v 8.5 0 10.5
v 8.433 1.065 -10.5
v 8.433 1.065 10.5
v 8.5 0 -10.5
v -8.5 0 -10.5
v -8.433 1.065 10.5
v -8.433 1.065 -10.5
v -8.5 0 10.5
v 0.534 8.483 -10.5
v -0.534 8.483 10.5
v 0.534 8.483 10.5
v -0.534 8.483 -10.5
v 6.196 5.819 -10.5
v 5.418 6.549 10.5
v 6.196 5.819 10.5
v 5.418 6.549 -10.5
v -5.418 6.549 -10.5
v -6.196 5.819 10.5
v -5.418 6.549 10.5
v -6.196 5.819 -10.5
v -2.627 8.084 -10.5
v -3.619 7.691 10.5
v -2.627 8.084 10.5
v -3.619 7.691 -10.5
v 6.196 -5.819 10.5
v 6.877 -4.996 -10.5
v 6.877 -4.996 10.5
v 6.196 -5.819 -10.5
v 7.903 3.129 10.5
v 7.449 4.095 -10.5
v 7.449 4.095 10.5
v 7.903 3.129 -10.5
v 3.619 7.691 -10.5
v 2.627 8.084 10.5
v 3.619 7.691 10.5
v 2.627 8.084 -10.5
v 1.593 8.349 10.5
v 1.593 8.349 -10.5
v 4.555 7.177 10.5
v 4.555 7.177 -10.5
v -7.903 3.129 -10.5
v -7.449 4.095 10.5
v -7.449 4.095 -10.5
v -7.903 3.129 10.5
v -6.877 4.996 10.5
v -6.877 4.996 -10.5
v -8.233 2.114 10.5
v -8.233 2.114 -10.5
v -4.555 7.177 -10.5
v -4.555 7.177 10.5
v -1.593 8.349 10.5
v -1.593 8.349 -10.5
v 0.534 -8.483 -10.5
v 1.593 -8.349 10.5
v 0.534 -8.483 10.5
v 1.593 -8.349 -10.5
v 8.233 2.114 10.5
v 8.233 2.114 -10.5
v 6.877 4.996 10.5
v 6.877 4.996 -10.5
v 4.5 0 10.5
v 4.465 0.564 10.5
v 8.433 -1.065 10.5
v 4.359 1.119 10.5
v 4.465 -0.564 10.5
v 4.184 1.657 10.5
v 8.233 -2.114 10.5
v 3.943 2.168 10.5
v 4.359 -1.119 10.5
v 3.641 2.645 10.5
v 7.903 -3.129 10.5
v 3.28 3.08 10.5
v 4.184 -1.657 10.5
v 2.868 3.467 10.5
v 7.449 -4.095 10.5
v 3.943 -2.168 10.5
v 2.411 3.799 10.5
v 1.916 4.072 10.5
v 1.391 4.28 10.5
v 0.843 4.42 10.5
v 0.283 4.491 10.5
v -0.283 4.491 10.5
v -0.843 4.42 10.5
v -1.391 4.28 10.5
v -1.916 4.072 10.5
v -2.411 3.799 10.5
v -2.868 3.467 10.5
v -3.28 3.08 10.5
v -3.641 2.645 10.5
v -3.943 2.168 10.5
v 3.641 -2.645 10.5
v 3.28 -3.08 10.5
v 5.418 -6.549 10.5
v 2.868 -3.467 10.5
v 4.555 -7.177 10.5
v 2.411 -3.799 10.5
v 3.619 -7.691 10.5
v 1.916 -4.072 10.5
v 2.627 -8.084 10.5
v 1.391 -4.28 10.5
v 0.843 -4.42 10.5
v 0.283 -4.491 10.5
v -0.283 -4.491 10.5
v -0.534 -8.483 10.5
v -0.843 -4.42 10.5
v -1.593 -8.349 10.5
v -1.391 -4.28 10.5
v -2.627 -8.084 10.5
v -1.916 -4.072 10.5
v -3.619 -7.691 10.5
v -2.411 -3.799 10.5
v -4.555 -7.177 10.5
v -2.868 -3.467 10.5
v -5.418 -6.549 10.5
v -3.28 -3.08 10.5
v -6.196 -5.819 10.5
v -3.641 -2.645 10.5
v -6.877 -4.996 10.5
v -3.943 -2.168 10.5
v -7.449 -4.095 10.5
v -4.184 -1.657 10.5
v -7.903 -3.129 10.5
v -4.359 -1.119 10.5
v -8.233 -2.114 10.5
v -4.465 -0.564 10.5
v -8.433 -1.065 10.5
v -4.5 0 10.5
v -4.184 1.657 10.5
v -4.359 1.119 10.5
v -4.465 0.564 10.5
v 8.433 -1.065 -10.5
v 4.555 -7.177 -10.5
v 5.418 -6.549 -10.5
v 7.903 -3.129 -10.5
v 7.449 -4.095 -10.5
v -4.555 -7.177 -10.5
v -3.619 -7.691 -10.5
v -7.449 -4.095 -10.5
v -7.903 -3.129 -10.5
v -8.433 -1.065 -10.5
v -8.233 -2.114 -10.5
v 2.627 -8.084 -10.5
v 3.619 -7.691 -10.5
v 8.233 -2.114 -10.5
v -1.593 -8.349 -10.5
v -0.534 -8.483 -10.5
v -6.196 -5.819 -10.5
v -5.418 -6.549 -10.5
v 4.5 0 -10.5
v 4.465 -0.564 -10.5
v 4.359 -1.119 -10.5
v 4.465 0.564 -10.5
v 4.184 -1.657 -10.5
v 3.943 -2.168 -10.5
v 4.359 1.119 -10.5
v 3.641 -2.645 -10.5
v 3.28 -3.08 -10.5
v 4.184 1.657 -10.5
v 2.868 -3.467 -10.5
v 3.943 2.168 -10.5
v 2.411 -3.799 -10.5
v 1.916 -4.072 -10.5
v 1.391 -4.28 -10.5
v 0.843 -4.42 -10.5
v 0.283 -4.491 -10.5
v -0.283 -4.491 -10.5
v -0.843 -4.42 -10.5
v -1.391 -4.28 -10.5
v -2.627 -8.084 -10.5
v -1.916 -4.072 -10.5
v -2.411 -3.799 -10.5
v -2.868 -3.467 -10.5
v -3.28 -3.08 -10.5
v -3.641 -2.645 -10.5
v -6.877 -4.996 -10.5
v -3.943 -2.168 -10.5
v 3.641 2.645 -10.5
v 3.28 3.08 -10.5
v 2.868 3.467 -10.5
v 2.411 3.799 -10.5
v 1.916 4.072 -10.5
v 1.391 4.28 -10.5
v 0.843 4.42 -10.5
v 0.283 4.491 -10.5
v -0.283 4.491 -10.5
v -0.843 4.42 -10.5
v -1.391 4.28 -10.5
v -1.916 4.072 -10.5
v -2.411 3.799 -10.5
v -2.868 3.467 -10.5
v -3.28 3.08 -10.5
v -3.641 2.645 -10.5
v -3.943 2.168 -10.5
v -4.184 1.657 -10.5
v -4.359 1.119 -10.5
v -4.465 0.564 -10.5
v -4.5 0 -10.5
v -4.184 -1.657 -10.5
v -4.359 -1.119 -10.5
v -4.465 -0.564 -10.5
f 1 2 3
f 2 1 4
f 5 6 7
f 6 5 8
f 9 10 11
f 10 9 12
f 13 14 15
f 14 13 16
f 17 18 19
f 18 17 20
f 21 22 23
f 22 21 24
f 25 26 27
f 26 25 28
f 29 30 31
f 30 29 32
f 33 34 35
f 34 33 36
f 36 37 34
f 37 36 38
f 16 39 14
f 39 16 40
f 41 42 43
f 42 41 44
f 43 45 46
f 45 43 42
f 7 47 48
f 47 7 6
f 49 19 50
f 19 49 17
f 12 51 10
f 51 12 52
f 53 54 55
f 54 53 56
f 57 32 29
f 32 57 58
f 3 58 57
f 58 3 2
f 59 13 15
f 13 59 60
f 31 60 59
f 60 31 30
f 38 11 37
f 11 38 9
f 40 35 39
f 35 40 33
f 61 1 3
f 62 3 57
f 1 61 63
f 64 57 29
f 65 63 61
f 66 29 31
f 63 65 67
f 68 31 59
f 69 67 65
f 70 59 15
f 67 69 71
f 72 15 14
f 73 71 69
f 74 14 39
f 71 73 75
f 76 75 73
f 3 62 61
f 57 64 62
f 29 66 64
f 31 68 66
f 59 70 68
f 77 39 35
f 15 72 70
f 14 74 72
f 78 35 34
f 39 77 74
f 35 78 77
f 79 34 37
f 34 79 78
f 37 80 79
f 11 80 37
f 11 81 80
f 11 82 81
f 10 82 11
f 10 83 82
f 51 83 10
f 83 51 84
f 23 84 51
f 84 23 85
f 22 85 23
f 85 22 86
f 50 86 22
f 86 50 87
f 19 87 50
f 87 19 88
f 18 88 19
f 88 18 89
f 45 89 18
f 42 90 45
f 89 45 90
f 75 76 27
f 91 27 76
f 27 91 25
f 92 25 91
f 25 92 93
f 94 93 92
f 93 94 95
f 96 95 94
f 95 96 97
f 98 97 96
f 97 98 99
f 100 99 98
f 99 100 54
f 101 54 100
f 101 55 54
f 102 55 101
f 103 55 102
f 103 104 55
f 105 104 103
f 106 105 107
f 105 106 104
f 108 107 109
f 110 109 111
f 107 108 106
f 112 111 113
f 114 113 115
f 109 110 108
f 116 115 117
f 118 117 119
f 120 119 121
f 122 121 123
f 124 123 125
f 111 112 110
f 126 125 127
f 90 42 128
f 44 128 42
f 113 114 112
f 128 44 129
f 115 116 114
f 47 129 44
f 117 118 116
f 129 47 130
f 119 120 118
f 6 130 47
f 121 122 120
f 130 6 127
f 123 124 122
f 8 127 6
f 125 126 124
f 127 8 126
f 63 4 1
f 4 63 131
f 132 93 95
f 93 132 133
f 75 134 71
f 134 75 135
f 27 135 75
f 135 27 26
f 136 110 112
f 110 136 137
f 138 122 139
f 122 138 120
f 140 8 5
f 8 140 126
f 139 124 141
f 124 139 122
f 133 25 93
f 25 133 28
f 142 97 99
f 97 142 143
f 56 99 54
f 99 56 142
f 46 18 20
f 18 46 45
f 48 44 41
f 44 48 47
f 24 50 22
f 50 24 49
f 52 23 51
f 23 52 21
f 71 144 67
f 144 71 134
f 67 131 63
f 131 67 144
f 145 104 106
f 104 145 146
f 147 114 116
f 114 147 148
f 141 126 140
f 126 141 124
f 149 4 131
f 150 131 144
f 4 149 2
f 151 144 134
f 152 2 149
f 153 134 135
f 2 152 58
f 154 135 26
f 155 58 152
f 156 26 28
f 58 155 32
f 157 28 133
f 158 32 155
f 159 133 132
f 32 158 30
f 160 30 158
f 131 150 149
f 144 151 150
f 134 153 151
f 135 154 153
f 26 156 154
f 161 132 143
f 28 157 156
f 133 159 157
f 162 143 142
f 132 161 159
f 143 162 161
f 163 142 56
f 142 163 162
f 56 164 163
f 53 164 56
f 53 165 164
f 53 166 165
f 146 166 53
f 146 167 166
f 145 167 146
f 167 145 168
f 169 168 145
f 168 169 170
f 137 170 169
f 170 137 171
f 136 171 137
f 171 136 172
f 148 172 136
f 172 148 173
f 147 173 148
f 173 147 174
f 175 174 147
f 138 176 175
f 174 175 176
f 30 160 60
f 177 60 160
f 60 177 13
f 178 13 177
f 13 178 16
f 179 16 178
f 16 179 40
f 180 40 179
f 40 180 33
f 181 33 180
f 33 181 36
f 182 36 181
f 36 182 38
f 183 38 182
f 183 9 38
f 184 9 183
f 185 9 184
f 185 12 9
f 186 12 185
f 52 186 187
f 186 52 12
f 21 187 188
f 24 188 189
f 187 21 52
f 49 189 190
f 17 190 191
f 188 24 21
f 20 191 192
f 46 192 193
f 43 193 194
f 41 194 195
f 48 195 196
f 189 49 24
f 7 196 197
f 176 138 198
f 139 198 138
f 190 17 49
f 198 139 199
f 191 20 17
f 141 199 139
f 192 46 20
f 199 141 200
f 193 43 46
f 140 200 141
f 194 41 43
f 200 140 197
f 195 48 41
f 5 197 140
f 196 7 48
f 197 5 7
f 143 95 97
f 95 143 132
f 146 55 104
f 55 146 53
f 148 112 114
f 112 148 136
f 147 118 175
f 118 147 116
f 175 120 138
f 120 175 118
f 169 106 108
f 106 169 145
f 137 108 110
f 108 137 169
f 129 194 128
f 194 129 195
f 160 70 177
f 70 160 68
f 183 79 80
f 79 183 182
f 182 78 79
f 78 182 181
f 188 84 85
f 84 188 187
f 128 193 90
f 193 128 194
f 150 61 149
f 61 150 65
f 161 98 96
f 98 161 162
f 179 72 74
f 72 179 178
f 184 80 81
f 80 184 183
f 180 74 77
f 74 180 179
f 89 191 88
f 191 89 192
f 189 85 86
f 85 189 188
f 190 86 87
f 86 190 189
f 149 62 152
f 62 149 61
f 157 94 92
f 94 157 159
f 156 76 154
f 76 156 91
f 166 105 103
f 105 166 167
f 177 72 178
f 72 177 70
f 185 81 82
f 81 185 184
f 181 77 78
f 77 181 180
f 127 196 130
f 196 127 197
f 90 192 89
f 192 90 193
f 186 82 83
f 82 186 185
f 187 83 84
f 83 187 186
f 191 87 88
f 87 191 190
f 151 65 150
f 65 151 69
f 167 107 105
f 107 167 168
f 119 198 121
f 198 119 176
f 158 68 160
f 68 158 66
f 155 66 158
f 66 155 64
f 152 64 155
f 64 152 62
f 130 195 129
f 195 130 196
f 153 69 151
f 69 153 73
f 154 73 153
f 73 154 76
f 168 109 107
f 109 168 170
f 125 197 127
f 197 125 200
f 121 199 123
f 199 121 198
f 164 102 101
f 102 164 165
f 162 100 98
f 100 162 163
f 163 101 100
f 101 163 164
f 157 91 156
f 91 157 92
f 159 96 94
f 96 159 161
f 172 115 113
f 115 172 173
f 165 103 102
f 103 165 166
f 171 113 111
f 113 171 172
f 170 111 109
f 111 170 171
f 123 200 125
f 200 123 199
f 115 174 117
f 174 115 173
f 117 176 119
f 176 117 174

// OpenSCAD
$fn = 50;


difference() {
	union() {
		translate(v = [0, 0, -10.5000000000]) {
			cylinder(h = 21, r = 8.5000000000);
		}
	}
	union() {
		translate(v = [0, 0, -100.0000000000]) {
			cylinder(h = 200, r = 4.5000000000);
		}
	}
}
